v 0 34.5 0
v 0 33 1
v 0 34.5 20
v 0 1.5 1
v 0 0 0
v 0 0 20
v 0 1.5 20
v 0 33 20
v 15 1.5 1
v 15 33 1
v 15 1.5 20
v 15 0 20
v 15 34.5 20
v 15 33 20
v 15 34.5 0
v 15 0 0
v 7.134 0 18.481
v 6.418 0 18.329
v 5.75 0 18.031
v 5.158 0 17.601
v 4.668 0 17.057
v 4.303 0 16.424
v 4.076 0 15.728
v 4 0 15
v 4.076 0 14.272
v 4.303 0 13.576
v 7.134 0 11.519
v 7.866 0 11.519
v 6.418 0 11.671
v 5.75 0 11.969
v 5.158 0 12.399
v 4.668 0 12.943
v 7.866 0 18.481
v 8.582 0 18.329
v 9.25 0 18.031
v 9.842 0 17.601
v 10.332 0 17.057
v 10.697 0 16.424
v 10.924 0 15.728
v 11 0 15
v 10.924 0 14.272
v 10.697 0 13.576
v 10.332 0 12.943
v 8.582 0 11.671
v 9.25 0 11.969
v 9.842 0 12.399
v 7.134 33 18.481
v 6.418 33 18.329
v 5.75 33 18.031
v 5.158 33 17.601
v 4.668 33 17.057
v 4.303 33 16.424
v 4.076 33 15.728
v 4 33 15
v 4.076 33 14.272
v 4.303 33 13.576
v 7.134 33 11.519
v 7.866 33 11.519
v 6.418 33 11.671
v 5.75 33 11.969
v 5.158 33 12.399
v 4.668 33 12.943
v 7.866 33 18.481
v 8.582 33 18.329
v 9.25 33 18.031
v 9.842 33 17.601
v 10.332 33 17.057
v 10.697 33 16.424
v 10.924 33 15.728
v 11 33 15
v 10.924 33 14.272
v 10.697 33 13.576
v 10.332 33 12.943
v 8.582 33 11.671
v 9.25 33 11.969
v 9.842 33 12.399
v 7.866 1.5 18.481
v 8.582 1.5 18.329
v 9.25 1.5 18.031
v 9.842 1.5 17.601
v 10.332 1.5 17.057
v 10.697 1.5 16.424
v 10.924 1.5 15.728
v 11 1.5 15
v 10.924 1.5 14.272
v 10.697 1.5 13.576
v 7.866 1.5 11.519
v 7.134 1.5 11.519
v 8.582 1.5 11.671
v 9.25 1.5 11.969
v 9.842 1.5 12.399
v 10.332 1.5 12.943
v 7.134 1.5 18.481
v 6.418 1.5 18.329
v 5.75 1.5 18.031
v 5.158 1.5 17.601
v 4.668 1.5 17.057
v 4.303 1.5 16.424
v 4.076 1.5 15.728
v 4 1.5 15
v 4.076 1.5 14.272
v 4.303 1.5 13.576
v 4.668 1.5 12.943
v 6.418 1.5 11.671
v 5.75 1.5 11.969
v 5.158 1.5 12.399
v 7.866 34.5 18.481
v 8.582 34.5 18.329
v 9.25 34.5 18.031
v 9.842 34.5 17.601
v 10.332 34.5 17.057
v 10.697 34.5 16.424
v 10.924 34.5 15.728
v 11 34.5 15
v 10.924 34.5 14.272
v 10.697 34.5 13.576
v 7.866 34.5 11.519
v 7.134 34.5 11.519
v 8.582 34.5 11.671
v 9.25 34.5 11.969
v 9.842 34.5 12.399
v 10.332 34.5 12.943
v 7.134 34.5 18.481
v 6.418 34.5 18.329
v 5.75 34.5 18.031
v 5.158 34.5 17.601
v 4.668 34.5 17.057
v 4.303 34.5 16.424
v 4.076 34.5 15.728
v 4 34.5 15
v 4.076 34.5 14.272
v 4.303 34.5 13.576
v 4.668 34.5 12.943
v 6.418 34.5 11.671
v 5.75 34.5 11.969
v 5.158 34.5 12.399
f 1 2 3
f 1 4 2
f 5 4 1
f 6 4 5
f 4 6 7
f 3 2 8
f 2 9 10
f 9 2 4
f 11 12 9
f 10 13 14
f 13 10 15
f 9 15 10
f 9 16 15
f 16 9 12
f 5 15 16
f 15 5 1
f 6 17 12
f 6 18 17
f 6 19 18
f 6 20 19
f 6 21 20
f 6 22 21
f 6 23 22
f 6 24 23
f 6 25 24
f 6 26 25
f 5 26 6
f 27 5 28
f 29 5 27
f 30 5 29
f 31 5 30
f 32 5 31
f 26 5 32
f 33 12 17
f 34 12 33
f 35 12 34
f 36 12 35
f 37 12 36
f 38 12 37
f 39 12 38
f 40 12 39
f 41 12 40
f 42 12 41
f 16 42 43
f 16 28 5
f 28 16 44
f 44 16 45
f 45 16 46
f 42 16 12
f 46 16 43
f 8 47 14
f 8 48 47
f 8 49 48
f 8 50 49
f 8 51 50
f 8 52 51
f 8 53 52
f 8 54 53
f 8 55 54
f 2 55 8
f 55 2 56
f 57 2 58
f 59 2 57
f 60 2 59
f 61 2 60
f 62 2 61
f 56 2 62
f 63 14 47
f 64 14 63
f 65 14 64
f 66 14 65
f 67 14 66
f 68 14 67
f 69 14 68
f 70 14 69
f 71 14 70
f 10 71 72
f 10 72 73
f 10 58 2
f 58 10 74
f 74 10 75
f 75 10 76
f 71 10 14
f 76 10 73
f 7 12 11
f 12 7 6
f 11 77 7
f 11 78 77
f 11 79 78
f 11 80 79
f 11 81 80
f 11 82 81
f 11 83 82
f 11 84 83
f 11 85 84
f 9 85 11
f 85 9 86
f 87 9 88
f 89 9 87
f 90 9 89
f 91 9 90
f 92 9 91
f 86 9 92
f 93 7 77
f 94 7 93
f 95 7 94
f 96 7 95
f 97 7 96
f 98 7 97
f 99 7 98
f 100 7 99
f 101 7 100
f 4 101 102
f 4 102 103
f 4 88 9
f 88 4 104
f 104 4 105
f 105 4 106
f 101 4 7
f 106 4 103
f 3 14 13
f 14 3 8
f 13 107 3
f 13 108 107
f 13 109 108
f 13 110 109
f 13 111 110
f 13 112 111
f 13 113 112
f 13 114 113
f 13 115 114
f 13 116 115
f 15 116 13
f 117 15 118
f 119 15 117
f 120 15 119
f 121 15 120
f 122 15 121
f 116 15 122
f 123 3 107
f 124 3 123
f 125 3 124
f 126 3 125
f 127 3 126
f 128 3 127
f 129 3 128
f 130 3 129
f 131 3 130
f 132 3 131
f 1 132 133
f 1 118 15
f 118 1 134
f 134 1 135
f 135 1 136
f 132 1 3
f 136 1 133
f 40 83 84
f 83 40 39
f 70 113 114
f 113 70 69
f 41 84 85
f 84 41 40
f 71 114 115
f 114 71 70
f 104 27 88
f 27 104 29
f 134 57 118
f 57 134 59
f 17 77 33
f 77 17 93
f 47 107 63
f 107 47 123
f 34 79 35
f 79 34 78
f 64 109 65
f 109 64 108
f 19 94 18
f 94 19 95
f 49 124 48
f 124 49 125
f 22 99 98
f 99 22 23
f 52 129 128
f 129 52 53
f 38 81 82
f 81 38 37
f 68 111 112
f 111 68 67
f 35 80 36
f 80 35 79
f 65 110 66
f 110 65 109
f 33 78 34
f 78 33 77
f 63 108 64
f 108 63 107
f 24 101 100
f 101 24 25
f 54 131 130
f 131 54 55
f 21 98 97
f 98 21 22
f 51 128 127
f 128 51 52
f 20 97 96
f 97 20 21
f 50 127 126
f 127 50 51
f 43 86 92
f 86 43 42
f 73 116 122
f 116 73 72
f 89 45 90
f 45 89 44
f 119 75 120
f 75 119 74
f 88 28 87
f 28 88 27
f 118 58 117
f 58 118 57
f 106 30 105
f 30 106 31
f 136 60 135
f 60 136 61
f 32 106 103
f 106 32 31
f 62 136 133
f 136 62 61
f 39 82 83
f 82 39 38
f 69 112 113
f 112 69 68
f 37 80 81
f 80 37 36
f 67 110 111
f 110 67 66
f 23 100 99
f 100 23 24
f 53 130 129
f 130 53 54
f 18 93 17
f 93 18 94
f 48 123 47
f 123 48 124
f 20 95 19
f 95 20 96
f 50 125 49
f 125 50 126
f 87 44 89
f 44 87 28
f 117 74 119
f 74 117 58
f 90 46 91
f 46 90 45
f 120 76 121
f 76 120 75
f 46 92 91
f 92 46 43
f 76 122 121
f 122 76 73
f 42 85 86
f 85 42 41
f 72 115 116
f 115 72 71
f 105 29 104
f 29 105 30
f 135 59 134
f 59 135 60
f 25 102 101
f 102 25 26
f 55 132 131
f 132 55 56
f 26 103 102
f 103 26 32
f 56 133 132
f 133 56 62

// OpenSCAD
$fn=30;

difference(){
union(){
cube([15,33,1]);
cube([15,1.5,20]);
translate([0,33,0])
cube([15,1.5,20]);
}

translate([15/2,0,15])
rotate([90,0,0])
cylinder(d=7, 70, center=true);
}
